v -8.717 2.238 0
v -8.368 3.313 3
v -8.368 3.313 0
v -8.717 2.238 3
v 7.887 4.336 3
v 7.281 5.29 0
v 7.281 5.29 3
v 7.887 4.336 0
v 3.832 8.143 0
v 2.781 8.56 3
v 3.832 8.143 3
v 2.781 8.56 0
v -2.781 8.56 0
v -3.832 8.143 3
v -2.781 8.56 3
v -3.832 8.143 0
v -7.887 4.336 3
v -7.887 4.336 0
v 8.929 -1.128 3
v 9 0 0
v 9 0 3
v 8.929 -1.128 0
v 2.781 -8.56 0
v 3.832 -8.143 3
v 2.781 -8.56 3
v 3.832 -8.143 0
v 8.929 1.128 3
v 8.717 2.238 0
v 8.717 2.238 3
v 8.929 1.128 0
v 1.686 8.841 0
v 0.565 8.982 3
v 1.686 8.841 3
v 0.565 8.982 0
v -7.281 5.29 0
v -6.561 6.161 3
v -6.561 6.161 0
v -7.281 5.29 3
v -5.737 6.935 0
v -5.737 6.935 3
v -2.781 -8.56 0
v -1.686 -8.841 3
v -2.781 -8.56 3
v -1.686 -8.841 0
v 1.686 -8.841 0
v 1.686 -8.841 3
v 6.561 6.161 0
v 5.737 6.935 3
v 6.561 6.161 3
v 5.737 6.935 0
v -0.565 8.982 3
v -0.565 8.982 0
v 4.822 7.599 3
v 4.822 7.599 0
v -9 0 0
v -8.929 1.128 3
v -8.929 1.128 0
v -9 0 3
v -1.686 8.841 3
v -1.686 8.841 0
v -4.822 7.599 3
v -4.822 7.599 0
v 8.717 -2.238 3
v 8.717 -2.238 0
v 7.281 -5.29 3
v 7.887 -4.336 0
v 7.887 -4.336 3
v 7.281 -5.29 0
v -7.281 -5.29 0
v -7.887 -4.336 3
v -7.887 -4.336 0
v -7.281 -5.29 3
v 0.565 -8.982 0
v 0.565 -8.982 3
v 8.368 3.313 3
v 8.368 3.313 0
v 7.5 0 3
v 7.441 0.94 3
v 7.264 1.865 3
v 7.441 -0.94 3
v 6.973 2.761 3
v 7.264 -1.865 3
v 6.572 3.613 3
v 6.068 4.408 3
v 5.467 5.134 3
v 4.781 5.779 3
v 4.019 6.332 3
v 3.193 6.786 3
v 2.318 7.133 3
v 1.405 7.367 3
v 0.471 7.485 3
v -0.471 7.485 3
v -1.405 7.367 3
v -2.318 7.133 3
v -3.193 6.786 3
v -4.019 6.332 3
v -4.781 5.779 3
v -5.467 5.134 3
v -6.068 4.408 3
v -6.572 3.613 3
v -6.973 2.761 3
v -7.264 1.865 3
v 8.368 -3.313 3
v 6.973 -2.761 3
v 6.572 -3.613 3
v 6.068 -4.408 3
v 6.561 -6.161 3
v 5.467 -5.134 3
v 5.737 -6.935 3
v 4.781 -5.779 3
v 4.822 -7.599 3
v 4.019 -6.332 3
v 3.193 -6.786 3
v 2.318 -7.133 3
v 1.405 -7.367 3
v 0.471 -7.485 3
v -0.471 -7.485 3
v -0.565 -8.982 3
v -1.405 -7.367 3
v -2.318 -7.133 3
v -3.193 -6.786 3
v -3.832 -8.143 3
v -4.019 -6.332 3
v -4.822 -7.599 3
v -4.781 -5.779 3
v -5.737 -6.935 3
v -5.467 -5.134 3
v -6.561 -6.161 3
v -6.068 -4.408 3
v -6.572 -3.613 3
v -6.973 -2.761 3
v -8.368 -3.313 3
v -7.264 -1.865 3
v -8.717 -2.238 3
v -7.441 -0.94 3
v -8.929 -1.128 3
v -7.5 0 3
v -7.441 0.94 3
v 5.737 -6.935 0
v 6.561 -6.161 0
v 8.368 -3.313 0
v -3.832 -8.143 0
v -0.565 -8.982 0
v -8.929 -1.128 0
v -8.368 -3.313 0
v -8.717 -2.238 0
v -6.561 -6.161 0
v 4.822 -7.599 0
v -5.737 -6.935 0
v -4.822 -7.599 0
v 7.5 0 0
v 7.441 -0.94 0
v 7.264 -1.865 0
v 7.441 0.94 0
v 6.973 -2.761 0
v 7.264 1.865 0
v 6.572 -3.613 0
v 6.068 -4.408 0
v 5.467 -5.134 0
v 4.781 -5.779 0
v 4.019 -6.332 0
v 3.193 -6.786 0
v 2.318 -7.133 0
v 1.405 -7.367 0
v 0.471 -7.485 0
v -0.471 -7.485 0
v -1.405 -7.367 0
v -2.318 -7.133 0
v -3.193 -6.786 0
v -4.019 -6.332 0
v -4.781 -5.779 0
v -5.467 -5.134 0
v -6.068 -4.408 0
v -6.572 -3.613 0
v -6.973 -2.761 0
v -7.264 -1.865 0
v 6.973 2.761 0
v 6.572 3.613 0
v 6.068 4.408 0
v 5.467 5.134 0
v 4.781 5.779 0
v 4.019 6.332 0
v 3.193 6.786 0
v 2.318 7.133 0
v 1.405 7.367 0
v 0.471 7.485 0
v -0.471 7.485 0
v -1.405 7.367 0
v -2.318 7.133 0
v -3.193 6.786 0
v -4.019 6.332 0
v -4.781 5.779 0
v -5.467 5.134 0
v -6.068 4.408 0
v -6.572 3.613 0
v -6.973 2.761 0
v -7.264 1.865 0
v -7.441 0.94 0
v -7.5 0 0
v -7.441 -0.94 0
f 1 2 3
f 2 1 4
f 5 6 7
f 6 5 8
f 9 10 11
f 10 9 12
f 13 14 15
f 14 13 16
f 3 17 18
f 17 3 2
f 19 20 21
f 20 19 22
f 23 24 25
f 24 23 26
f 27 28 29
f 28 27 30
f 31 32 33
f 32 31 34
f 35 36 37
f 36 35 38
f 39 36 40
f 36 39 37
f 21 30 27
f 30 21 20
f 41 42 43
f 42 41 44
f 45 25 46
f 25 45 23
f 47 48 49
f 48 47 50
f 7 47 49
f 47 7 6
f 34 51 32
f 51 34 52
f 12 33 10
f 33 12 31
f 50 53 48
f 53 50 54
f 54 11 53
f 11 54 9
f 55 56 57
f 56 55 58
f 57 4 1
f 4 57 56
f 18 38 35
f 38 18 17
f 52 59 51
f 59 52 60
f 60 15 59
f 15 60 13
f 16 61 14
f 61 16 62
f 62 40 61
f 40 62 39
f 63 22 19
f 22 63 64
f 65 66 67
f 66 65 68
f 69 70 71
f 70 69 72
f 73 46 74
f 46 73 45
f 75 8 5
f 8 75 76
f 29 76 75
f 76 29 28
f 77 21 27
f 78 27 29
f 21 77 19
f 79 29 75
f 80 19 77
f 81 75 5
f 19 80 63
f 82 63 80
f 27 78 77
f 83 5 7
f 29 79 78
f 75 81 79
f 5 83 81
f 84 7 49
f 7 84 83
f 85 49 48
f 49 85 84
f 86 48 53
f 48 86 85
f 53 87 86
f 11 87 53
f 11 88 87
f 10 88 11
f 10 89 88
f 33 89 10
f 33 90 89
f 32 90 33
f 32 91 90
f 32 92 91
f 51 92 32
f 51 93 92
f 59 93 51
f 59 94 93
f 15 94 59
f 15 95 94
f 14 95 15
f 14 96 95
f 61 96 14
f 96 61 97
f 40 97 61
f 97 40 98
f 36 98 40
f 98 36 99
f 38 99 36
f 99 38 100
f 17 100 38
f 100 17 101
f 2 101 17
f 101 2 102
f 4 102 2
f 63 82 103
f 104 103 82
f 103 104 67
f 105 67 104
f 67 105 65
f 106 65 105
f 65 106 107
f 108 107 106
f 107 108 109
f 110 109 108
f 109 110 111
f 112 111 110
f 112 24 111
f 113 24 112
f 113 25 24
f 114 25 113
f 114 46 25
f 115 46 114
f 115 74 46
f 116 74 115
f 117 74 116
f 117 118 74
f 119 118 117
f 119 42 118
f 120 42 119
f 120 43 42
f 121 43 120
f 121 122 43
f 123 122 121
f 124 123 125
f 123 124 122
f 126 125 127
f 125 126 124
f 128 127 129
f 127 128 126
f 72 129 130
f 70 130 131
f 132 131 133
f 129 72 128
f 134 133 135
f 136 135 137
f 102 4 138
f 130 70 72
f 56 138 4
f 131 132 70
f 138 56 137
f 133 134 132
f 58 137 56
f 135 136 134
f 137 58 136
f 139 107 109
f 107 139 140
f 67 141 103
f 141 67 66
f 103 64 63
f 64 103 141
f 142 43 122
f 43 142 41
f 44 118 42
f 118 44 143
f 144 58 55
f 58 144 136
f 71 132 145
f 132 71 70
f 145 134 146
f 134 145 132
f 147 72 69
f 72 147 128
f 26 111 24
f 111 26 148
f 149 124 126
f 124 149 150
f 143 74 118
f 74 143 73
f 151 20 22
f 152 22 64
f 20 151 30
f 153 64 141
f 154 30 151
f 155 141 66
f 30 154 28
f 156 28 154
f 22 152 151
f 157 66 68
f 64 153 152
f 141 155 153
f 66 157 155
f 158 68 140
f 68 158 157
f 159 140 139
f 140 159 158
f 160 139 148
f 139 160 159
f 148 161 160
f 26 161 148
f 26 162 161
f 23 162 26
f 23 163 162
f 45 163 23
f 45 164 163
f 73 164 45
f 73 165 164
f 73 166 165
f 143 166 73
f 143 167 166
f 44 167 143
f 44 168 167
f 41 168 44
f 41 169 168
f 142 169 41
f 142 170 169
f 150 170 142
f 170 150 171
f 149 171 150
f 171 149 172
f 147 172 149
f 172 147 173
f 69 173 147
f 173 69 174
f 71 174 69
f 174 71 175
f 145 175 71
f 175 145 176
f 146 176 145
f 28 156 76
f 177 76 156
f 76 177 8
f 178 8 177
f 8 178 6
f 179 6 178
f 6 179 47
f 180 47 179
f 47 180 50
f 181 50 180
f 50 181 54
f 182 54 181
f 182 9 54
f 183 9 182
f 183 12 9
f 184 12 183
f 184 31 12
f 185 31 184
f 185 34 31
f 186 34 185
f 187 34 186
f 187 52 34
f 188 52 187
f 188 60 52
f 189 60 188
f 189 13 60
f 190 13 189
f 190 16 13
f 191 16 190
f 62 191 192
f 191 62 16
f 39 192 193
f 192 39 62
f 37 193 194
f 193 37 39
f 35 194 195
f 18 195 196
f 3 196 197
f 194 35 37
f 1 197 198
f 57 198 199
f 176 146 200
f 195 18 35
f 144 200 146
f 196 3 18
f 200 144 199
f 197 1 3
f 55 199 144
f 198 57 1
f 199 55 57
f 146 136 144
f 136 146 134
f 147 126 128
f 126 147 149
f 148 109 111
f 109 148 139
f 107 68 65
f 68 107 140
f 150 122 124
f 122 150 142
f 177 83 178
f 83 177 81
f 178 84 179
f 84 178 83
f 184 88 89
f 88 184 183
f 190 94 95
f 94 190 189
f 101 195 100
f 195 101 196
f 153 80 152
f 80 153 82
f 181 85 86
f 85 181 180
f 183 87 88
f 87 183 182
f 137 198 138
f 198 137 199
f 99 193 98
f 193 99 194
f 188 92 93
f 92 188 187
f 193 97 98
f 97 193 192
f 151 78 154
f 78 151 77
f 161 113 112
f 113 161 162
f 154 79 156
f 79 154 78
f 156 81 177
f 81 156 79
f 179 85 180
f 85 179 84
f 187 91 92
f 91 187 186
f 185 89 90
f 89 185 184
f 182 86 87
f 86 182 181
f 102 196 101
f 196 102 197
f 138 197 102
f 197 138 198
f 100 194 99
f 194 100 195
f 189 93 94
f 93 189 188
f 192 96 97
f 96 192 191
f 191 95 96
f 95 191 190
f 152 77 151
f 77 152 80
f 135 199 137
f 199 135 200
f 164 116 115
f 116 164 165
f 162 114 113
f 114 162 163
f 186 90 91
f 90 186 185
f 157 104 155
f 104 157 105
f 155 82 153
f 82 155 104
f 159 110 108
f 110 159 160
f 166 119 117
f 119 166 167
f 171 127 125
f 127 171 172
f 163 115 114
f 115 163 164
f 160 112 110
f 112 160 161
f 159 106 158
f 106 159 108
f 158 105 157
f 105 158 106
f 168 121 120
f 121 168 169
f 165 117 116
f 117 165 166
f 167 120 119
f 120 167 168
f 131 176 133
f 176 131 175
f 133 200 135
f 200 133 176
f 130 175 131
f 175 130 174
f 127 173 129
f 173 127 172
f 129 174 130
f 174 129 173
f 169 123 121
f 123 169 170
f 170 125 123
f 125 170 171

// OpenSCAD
$fn = 50;

difference() {
    cylinder(h=3,d=18);
    cylinder(h=3,d=15);
}
